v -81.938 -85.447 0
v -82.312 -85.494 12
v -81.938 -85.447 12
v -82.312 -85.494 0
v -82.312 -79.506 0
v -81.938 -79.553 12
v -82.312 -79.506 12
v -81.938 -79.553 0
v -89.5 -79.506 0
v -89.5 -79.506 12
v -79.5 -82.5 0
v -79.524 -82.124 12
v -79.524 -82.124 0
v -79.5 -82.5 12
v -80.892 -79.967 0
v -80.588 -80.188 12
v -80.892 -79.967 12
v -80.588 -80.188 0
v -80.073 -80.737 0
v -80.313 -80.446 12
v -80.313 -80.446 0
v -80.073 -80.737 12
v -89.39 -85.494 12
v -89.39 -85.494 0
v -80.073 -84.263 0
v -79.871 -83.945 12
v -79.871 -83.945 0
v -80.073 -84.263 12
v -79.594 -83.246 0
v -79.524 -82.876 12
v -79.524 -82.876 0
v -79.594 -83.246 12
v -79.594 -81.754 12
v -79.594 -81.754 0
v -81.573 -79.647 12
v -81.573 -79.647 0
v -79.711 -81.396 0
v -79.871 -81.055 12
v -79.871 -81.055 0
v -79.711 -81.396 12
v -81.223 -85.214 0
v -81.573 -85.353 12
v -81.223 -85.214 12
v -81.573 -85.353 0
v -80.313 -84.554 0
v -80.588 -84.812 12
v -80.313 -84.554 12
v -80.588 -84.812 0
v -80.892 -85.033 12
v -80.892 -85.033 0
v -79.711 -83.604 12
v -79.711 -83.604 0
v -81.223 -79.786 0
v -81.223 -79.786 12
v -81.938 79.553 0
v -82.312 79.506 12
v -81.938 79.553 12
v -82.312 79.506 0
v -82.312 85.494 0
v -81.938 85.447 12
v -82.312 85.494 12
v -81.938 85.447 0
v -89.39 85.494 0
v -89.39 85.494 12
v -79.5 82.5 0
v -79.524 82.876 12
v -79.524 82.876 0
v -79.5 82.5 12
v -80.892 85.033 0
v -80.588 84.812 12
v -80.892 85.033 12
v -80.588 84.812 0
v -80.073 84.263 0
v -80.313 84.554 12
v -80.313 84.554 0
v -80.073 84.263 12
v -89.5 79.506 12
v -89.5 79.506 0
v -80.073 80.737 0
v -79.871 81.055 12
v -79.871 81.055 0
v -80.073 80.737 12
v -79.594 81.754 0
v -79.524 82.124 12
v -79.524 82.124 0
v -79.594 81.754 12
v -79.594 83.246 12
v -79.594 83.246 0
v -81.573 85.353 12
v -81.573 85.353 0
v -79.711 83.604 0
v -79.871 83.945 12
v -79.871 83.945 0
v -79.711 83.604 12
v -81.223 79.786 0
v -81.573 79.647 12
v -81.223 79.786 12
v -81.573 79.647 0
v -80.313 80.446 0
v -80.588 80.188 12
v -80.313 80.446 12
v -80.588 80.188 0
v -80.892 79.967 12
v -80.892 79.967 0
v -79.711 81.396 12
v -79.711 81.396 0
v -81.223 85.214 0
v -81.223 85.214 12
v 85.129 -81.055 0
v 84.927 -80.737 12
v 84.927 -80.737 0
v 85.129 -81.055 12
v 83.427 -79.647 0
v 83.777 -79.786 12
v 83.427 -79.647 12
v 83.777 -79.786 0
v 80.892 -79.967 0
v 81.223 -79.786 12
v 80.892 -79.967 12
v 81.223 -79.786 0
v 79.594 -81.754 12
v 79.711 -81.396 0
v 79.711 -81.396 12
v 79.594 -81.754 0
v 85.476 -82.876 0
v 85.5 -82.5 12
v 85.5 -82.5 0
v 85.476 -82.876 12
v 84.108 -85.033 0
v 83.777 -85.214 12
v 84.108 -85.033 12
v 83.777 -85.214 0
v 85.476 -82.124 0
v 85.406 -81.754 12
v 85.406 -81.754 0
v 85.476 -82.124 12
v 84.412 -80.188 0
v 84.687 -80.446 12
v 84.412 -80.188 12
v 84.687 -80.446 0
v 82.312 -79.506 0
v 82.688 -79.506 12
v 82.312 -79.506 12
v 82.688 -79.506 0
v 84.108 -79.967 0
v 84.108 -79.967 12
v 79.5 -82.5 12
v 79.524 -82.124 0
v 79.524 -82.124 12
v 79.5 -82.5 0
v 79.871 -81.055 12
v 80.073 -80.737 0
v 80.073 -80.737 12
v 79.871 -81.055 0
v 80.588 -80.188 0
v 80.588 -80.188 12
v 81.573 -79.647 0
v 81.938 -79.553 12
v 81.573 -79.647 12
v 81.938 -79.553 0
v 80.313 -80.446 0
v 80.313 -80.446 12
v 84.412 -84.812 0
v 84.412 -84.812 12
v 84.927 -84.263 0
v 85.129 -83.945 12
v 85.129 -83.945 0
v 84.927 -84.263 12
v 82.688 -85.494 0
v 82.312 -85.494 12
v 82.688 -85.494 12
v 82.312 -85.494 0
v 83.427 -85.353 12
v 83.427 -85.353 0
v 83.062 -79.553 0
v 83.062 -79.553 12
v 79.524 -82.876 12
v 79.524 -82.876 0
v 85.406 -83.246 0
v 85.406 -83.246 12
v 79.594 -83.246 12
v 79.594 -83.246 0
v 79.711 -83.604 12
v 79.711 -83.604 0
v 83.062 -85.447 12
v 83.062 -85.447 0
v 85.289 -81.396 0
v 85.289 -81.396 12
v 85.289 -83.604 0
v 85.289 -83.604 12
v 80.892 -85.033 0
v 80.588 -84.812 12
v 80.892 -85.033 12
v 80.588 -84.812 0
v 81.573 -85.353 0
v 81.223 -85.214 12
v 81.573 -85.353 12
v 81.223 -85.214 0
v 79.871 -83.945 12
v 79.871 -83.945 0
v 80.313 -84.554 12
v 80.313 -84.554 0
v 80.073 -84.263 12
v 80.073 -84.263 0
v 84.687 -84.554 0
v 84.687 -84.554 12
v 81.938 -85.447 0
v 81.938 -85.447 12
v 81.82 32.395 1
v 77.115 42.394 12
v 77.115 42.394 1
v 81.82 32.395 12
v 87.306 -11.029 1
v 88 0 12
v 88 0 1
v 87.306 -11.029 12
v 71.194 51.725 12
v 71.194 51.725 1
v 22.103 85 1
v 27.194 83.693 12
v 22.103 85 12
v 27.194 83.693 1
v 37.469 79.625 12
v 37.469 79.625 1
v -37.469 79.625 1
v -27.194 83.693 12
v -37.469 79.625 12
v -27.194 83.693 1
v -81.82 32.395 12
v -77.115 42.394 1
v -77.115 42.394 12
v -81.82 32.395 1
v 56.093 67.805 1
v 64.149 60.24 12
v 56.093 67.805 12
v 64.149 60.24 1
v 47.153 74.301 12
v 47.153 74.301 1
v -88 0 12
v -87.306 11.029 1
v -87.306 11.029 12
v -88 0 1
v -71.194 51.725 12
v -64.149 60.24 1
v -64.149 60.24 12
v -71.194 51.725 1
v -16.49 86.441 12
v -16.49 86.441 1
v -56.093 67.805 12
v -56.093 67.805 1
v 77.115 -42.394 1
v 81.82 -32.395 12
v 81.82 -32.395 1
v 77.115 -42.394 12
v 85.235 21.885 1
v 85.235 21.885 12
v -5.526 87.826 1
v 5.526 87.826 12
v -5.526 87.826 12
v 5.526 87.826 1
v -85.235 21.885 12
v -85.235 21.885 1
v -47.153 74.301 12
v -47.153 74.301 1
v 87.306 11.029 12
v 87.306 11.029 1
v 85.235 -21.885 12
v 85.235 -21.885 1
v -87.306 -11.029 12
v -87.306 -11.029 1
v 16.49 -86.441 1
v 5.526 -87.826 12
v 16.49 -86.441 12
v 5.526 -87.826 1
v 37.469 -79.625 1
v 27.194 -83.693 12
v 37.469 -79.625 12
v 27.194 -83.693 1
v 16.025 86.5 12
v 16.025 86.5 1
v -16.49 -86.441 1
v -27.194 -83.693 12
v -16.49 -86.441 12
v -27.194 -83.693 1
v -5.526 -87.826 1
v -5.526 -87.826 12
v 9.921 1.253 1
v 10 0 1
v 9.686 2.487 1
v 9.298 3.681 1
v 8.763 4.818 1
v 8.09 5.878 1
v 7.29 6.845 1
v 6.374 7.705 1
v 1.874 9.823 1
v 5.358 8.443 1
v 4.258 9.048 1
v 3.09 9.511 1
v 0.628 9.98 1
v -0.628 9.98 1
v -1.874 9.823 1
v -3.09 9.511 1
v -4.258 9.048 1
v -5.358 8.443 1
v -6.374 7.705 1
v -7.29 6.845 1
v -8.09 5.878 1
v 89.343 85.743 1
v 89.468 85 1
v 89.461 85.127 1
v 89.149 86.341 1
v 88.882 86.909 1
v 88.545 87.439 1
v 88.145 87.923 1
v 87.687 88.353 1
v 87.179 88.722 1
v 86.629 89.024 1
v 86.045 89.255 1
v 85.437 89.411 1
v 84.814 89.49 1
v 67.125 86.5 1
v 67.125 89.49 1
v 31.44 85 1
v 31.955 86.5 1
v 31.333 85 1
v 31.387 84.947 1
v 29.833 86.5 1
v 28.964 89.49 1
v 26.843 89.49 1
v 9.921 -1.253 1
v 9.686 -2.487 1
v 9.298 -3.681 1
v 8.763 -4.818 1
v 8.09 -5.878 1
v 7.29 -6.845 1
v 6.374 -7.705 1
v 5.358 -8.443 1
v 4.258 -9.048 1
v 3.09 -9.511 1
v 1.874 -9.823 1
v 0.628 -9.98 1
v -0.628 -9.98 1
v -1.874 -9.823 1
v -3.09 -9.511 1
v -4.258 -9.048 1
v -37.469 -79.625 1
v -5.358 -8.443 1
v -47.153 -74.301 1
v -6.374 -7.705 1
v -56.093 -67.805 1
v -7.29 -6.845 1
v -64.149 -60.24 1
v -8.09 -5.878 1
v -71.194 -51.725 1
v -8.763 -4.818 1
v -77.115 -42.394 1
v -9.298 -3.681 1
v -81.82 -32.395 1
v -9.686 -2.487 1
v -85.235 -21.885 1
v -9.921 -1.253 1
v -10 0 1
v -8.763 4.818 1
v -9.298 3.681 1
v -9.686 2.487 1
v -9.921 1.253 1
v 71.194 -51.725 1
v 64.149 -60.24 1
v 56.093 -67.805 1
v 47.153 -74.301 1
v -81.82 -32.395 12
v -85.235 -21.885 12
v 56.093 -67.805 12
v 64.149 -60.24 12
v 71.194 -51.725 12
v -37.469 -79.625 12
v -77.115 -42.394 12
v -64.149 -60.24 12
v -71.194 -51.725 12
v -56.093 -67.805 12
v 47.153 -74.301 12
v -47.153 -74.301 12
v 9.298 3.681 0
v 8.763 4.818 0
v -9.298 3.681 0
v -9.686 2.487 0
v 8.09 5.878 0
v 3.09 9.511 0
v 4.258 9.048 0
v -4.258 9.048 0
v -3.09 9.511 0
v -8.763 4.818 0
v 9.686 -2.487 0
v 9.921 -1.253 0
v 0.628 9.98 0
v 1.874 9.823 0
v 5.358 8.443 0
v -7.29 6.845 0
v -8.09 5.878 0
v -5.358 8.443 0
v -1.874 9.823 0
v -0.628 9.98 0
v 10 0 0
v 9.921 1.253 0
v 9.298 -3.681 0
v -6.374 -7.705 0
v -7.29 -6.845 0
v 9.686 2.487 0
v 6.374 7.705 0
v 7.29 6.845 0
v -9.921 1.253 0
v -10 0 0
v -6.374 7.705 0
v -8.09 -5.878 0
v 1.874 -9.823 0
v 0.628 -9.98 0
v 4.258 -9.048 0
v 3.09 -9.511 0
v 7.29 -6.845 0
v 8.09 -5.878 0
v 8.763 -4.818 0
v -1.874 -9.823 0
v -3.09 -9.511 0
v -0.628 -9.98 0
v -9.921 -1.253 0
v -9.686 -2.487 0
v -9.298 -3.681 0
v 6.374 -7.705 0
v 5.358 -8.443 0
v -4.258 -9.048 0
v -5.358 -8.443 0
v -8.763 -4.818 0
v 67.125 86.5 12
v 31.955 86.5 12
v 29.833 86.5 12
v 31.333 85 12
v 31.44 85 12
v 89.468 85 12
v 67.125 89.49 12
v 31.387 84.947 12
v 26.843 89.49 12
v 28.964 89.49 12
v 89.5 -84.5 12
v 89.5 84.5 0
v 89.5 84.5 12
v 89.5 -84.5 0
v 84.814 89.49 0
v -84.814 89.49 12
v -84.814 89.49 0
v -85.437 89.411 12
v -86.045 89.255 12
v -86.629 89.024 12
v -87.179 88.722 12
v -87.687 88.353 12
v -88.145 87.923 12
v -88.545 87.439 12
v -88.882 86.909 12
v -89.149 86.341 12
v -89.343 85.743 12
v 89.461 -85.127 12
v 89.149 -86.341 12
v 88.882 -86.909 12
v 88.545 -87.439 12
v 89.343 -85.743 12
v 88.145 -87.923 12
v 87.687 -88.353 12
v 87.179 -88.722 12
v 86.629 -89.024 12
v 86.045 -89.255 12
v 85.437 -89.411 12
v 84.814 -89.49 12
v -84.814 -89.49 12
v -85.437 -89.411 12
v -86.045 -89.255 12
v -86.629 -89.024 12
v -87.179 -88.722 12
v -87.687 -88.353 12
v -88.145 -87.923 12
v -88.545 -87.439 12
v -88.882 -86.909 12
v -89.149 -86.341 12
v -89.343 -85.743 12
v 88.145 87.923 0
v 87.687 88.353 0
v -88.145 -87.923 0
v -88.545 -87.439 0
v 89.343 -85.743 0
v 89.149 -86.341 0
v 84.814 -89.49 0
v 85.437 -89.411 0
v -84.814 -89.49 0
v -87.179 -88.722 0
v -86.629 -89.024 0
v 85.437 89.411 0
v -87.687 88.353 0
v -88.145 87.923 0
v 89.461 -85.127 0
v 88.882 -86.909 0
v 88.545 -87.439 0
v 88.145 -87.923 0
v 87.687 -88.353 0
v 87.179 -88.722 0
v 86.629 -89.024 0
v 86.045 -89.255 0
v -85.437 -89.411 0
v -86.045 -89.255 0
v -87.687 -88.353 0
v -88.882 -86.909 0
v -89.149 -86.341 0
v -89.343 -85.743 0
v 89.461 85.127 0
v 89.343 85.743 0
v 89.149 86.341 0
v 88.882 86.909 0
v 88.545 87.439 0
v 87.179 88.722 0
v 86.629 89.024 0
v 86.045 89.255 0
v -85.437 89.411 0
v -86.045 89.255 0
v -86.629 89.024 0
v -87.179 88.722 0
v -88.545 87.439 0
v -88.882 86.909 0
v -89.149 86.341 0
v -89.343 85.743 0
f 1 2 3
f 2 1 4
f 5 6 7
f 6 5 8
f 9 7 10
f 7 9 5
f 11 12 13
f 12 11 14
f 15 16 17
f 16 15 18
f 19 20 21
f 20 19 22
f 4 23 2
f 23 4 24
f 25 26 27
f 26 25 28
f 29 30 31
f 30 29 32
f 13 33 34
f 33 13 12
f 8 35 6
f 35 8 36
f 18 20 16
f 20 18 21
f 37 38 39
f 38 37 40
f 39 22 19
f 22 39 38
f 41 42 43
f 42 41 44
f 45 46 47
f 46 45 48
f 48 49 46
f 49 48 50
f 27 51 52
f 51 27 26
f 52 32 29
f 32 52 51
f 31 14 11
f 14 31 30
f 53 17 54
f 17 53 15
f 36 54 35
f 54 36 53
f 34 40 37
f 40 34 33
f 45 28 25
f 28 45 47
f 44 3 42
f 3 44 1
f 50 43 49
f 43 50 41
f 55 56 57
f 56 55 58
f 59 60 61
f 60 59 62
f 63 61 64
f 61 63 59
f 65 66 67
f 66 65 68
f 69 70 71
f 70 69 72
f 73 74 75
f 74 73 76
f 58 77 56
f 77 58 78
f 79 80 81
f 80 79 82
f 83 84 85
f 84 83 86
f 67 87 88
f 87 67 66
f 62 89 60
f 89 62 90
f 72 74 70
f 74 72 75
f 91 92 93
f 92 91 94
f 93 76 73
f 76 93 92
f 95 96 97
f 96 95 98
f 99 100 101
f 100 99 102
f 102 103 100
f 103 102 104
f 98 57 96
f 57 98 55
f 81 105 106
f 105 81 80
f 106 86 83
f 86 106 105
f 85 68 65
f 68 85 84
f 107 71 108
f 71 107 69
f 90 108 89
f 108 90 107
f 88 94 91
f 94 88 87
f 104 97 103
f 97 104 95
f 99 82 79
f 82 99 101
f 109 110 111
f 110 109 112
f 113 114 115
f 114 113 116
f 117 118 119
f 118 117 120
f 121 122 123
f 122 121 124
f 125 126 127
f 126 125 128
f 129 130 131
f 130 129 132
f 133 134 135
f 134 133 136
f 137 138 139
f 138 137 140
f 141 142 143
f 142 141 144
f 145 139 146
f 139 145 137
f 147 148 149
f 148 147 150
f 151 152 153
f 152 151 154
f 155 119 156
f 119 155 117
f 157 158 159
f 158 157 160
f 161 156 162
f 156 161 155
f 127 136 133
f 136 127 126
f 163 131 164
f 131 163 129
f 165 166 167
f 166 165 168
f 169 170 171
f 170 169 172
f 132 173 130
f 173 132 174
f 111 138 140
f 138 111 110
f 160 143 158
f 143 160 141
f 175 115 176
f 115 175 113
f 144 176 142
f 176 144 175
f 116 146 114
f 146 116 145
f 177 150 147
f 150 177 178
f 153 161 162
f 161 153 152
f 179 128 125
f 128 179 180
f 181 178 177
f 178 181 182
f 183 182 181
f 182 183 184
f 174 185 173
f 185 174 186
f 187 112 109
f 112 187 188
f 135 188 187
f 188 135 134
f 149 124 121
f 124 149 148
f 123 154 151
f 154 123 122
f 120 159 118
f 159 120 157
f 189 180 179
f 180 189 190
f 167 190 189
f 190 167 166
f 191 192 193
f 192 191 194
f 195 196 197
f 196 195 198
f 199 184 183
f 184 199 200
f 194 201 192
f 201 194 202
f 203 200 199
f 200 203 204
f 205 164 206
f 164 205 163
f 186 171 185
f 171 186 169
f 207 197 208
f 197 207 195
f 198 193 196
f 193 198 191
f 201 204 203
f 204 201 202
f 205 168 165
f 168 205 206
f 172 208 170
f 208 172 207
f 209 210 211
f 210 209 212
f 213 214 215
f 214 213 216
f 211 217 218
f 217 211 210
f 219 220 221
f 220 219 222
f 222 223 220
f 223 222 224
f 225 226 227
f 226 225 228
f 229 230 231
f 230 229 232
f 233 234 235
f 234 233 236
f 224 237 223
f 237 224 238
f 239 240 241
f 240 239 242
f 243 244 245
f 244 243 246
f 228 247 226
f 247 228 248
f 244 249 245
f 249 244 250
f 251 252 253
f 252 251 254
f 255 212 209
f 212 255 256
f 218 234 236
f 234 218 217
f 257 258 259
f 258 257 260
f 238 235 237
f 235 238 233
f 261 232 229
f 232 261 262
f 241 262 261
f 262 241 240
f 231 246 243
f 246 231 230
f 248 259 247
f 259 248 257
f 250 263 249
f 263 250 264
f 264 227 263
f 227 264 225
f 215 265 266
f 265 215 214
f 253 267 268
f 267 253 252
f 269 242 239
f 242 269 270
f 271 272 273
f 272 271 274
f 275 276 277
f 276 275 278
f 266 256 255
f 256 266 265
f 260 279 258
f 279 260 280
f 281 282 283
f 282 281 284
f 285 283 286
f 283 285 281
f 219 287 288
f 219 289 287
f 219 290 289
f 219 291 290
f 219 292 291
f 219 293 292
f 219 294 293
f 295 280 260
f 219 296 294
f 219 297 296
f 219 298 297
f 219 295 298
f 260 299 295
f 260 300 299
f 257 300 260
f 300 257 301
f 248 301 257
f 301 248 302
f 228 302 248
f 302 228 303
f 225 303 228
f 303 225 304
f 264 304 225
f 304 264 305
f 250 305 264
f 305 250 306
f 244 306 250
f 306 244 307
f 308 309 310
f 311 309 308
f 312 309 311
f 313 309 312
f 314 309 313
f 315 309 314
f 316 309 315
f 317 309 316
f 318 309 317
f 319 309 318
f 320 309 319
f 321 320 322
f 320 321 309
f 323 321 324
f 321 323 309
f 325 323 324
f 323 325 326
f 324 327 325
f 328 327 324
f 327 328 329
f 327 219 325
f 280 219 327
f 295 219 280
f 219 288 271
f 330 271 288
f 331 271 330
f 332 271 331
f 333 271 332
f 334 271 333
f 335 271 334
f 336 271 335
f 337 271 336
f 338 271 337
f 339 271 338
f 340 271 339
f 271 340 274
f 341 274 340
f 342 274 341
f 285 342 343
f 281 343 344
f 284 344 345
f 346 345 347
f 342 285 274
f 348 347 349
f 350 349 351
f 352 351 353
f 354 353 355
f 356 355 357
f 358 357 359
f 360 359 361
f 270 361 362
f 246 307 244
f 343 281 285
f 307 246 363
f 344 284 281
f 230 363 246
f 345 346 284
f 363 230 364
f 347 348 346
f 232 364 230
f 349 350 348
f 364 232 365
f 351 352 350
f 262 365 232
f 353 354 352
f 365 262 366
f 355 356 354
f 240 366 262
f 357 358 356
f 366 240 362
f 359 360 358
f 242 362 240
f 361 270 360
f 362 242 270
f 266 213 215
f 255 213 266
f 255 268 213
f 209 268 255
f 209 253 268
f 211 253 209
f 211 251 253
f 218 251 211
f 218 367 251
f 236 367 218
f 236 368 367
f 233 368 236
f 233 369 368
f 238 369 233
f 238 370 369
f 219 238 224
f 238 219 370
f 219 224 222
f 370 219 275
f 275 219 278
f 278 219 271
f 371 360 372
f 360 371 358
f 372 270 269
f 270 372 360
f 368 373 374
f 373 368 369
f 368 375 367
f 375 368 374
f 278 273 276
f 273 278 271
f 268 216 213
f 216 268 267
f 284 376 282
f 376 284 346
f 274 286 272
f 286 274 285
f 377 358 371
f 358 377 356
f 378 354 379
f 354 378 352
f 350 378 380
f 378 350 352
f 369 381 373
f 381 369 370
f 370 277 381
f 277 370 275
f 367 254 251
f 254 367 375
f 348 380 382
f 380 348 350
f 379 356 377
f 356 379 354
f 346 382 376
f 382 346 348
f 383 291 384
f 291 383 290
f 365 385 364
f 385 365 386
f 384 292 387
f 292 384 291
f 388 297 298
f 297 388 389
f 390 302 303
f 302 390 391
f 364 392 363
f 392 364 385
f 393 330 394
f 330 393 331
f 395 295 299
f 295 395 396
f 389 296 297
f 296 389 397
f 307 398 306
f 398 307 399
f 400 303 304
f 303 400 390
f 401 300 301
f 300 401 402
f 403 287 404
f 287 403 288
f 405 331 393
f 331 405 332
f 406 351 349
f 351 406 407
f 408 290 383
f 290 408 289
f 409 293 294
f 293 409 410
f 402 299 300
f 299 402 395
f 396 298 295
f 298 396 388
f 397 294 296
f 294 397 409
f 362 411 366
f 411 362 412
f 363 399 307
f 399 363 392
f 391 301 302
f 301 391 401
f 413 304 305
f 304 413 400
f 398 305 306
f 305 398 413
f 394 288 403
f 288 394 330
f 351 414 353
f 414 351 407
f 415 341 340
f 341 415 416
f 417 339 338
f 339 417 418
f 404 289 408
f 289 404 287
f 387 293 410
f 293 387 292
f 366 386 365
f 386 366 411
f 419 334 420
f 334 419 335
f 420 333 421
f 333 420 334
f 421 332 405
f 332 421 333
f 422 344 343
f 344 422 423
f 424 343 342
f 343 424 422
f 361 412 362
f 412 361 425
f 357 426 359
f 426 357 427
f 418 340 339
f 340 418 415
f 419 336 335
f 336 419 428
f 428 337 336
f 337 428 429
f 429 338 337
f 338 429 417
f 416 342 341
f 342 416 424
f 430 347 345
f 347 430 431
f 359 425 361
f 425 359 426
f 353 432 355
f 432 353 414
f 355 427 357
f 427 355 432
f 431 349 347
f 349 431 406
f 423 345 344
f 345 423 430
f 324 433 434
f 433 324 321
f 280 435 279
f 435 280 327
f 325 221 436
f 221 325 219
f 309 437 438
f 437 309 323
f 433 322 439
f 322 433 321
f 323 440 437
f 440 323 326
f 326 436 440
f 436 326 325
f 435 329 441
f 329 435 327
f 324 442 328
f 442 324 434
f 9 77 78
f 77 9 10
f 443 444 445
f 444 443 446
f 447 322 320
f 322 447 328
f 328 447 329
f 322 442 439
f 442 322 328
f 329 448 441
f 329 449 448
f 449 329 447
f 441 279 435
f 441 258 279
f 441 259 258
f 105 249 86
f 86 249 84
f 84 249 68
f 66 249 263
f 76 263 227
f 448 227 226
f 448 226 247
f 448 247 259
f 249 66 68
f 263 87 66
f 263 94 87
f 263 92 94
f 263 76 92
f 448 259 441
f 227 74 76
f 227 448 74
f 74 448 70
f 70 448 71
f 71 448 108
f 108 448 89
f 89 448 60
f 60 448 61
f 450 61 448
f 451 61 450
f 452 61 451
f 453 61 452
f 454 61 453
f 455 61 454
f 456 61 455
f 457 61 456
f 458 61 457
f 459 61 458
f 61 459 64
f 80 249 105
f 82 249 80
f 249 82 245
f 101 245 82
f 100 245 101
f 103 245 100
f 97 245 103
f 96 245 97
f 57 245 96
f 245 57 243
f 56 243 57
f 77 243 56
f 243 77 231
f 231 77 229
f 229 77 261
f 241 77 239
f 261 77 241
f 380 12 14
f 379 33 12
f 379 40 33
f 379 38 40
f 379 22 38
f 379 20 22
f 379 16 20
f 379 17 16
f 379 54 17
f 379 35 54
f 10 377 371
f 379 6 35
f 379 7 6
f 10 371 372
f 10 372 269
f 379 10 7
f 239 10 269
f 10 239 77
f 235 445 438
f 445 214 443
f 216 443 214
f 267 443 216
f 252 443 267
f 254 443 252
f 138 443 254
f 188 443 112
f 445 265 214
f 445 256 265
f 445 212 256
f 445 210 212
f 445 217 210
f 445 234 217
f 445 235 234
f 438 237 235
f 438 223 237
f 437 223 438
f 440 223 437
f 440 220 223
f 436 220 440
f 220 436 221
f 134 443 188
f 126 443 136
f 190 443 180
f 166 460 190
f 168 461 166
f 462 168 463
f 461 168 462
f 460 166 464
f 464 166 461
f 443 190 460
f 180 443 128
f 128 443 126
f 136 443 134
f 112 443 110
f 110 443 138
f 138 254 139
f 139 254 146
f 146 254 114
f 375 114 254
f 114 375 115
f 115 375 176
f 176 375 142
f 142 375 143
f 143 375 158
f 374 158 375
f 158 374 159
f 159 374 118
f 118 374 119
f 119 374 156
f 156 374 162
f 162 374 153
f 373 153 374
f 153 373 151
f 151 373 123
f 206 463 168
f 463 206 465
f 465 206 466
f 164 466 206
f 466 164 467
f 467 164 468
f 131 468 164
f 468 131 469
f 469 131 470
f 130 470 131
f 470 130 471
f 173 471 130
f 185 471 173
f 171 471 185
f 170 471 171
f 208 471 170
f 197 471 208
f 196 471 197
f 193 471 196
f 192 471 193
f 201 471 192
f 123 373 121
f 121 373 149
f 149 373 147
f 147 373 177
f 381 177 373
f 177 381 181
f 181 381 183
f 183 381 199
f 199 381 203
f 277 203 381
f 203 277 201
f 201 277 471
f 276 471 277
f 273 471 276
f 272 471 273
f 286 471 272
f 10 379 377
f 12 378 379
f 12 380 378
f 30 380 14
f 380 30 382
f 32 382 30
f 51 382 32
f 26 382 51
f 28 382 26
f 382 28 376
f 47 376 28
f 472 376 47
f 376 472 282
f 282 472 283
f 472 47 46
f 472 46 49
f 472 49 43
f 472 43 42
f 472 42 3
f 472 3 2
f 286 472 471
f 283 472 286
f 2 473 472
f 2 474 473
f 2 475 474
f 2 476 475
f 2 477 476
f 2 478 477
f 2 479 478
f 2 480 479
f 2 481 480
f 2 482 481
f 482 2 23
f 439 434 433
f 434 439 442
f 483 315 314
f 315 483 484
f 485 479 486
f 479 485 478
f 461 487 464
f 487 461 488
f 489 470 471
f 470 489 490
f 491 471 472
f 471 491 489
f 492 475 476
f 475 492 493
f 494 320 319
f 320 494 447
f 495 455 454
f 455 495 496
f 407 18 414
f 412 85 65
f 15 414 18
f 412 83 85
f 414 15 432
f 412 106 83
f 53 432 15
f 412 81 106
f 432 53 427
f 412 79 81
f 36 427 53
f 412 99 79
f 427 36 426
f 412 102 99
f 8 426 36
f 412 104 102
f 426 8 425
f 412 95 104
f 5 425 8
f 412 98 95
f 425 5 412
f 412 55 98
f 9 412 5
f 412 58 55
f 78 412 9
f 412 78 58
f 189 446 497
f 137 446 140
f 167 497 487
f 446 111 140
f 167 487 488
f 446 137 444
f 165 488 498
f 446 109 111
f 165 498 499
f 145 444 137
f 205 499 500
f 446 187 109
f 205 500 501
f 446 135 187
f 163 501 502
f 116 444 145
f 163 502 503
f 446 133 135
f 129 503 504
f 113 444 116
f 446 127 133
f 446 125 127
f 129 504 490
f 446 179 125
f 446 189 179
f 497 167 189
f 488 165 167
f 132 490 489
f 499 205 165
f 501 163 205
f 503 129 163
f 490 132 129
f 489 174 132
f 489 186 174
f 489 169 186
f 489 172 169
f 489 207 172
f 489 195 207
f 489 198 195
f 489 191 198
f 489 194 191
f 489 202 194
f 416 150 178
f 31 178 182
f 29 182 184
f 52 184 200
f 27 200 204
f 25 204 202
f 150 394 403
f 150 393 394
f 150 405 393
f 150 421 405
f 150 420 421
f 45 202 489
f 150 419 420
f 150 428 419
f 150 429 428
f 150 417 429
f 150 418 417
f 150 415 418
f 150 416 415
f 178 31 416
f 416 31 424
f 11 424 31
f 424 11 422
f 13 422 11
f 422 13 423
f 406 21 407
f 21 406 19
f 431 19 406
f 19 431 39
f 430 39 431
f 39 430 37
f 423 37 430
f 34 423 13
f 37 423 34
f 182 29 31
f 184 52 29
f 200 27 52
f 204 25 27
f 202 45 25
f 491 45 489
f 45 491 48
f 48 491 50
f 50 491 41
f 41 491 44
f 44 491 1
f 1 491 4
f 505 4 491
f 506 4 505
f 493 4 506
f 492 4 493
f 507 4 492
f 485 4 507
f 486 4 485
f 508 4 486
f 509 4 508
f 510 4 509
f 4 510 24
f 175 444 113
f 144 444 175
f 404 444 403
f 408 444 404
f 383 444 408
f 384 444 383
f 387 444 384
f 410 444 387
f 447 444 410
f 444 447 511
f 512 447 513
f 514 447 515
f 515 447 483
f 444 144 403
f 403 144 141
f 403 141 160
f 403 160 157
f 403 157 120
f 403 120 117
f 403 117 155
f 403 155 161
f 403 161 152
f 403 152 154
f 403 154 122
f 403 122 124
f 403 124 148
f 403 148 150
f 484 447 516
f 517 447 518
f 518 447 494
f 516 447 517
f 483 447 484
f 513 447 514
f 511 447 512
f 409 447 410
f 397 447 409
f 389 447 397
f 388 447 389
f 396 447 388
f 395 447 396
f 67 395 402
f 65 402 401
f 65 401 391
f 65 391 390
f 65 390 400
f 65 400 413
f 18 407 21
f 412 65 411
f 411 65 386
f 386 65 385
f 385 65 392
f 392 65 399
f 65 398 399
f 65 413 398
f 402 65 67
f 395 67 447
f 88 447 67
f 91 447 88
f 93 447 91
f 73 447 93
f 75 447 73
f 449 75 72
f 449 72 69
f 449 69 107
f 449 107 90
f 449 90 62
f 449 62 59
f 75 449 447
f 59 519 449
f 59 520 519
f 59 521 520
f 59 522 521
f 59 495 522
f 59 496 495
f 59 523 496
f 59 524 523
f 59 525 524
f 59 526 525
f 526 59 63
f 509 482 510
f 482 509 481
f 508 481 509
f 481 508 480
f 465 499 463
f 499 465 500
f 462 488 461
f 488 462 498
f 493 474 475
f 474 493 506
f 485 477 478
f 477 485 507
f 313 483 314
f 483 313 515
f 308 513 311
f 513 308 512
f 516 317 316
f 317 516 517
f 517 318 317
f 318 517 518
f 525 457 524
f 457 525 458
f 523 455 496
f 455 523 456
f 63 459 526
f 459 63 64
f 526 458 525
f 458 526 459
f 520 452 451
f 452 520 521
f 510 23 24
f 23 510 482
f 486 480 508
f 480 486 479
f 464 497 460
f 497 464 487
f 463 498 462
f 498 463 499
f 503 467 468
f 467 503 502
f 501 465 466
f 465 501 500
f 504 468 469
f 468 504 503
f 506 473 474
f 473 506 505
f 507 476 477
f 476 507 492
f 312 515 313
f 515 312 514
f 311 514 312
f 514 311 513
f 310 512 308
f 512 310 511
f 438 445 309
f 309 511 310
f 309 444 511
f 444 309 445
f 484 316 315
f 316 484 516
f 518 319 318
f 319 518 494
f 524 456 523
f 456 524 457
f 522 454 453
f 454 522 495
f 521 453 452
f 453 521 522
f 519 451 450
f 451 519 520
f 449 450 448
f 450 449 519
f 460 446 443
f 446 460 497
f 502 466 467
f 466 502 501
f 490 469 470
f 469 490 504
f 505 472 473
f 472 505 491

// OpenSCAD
$fn = 50;


difference() {
	union() {
		translate(v = [0, 0, 0]) {
			rotate(a = [0, 0, 0]) {
				hull() {
					translate(v = [-84.5000000000, 84.5000000000, 0]) {
						rotate(a = [0, 0, 0]) {
							translate(v = [0, 0, 0]) {
								rotate(a = [0, 0, 0]) {
									cylinder(h = 12, r = 5);
								}
							}
						}
					}
					translate(v = [84.5000000000, 84.5000000000, 0]) {
						rotate(a = [0, 0, 0]) {
							translate(v = [0, 0, 0]) {
								rotate(a = [0, 0, 0]) {
									cylinder(h = 12, r = 5);
								}
							}
						}
					}
					translate(v = [-84.5000000000, -84.5000000000, 0]) {
						rotate(a = [0, 0, 0]) {
							translate(v = [0, 0, 0]) {
								rotate(a = [0, 0, 0]) {
									cylinder(h = 12, r = 5);
								}
							}
						}
					}
					translate(v = [84.5000000000, -84.5000000000, 0]) {
						rotate(a = [0, 0, 0]) {
							translate(v = [0, 0, 0]) {
								rotate(a = [0, 0, 0]) {
									cylinder(h = 12, r = 5);
								}
							}
						}
					}
				}
			}
		}
	}
	union() {
		translate(v = [-90.0000000000, -82.5000000000, -125]) {
			rotate(a = [0, 0, 0]) {
				hull() {
					translate(v = [7.5000000000, 0, 0]) {
						rotate(a = [0, 0, 0]) {
							translate(v = [0, 0, 0]) {
								rotate(a = [0, 0, 0]) {
									cylinder(h = 250, r = 3.0000000000);
								}
							}
						}
					}
					translate(v = [-7.5000000000, 0, 0]) {
						rotate(a = [0, 0, 0]) {
							translate(v = [0, 0, 0]) {
								rotate(a = [0, 0, 0]) {
									cylinder(h = 250, r = 3.0000000000);
								}
							}
						}
					}
				}
			}
		}
		translate(v = [-90.0000000000, 82.5000000000, -125]) {
			rotate(a = [0, 0, 0]) {
				hull() {
					translate(v = [7.5000000000, 0, 0]) {
						rotate(a = [0, 0, 0]) {
							translate(v = [0, 0, 0]) {
								rotate(a = [0, 0, 0]) {
									cylinder(h = 250, r = 3.0000000000);
								}
							}
						}
					}
					translate(v = [-7.5000000000, 0, 0]) {
						rotate(a = [0, 0, 0]) {
							translate(v = [0, 0, 0]) {
								rotate(a = [0, 0, 0]) {
									cylinder(h = 250, r = 3.0000000000);
								}
							}
						}
					}
				}
			}
		}
		translate(v = [82.5000000000, -82.5000000000, -125.0000000000]) {
			rotate(a = [0, 0, 0]) {
				cylinder(h = 250, r = 3.0000000000);
			}
		}
		translate(v = [0, 0, 1.0000000000]) {
			rotate(a = [0, 0, 0]) {
				cylinder(h = 14, r = 88.0000000000);
			}
		}
		translate(v = [0, 0, -6.0000000000]) {
			rotate(a = [0, 0, 0]) {
				cylinder(h = 12, r = 10.0000000000);
			}
		}
		translate(v = [0.0000000000, 85.0000000000, 1]) {
			rotate(a = [0, 0, 0]) {
				cube(size = [89.5000000000, 1.5000000000, 14]);
			}
		}
		translate(v = [67.1250000000, 85.0000000000, 1]) {
			rotate(a = [0, 0, 0]) {
				cube(size = [22.3750000000, 4.5000000000, 14]);
			}
		}
		translate(v = [26.0833333333, 90.2500000000, 1]) {
			rotate(a = [0, 0, -45]) {
				cube(size = [7.5000000000, 1.5000000000, 14]);
			}
		}
	}
}
